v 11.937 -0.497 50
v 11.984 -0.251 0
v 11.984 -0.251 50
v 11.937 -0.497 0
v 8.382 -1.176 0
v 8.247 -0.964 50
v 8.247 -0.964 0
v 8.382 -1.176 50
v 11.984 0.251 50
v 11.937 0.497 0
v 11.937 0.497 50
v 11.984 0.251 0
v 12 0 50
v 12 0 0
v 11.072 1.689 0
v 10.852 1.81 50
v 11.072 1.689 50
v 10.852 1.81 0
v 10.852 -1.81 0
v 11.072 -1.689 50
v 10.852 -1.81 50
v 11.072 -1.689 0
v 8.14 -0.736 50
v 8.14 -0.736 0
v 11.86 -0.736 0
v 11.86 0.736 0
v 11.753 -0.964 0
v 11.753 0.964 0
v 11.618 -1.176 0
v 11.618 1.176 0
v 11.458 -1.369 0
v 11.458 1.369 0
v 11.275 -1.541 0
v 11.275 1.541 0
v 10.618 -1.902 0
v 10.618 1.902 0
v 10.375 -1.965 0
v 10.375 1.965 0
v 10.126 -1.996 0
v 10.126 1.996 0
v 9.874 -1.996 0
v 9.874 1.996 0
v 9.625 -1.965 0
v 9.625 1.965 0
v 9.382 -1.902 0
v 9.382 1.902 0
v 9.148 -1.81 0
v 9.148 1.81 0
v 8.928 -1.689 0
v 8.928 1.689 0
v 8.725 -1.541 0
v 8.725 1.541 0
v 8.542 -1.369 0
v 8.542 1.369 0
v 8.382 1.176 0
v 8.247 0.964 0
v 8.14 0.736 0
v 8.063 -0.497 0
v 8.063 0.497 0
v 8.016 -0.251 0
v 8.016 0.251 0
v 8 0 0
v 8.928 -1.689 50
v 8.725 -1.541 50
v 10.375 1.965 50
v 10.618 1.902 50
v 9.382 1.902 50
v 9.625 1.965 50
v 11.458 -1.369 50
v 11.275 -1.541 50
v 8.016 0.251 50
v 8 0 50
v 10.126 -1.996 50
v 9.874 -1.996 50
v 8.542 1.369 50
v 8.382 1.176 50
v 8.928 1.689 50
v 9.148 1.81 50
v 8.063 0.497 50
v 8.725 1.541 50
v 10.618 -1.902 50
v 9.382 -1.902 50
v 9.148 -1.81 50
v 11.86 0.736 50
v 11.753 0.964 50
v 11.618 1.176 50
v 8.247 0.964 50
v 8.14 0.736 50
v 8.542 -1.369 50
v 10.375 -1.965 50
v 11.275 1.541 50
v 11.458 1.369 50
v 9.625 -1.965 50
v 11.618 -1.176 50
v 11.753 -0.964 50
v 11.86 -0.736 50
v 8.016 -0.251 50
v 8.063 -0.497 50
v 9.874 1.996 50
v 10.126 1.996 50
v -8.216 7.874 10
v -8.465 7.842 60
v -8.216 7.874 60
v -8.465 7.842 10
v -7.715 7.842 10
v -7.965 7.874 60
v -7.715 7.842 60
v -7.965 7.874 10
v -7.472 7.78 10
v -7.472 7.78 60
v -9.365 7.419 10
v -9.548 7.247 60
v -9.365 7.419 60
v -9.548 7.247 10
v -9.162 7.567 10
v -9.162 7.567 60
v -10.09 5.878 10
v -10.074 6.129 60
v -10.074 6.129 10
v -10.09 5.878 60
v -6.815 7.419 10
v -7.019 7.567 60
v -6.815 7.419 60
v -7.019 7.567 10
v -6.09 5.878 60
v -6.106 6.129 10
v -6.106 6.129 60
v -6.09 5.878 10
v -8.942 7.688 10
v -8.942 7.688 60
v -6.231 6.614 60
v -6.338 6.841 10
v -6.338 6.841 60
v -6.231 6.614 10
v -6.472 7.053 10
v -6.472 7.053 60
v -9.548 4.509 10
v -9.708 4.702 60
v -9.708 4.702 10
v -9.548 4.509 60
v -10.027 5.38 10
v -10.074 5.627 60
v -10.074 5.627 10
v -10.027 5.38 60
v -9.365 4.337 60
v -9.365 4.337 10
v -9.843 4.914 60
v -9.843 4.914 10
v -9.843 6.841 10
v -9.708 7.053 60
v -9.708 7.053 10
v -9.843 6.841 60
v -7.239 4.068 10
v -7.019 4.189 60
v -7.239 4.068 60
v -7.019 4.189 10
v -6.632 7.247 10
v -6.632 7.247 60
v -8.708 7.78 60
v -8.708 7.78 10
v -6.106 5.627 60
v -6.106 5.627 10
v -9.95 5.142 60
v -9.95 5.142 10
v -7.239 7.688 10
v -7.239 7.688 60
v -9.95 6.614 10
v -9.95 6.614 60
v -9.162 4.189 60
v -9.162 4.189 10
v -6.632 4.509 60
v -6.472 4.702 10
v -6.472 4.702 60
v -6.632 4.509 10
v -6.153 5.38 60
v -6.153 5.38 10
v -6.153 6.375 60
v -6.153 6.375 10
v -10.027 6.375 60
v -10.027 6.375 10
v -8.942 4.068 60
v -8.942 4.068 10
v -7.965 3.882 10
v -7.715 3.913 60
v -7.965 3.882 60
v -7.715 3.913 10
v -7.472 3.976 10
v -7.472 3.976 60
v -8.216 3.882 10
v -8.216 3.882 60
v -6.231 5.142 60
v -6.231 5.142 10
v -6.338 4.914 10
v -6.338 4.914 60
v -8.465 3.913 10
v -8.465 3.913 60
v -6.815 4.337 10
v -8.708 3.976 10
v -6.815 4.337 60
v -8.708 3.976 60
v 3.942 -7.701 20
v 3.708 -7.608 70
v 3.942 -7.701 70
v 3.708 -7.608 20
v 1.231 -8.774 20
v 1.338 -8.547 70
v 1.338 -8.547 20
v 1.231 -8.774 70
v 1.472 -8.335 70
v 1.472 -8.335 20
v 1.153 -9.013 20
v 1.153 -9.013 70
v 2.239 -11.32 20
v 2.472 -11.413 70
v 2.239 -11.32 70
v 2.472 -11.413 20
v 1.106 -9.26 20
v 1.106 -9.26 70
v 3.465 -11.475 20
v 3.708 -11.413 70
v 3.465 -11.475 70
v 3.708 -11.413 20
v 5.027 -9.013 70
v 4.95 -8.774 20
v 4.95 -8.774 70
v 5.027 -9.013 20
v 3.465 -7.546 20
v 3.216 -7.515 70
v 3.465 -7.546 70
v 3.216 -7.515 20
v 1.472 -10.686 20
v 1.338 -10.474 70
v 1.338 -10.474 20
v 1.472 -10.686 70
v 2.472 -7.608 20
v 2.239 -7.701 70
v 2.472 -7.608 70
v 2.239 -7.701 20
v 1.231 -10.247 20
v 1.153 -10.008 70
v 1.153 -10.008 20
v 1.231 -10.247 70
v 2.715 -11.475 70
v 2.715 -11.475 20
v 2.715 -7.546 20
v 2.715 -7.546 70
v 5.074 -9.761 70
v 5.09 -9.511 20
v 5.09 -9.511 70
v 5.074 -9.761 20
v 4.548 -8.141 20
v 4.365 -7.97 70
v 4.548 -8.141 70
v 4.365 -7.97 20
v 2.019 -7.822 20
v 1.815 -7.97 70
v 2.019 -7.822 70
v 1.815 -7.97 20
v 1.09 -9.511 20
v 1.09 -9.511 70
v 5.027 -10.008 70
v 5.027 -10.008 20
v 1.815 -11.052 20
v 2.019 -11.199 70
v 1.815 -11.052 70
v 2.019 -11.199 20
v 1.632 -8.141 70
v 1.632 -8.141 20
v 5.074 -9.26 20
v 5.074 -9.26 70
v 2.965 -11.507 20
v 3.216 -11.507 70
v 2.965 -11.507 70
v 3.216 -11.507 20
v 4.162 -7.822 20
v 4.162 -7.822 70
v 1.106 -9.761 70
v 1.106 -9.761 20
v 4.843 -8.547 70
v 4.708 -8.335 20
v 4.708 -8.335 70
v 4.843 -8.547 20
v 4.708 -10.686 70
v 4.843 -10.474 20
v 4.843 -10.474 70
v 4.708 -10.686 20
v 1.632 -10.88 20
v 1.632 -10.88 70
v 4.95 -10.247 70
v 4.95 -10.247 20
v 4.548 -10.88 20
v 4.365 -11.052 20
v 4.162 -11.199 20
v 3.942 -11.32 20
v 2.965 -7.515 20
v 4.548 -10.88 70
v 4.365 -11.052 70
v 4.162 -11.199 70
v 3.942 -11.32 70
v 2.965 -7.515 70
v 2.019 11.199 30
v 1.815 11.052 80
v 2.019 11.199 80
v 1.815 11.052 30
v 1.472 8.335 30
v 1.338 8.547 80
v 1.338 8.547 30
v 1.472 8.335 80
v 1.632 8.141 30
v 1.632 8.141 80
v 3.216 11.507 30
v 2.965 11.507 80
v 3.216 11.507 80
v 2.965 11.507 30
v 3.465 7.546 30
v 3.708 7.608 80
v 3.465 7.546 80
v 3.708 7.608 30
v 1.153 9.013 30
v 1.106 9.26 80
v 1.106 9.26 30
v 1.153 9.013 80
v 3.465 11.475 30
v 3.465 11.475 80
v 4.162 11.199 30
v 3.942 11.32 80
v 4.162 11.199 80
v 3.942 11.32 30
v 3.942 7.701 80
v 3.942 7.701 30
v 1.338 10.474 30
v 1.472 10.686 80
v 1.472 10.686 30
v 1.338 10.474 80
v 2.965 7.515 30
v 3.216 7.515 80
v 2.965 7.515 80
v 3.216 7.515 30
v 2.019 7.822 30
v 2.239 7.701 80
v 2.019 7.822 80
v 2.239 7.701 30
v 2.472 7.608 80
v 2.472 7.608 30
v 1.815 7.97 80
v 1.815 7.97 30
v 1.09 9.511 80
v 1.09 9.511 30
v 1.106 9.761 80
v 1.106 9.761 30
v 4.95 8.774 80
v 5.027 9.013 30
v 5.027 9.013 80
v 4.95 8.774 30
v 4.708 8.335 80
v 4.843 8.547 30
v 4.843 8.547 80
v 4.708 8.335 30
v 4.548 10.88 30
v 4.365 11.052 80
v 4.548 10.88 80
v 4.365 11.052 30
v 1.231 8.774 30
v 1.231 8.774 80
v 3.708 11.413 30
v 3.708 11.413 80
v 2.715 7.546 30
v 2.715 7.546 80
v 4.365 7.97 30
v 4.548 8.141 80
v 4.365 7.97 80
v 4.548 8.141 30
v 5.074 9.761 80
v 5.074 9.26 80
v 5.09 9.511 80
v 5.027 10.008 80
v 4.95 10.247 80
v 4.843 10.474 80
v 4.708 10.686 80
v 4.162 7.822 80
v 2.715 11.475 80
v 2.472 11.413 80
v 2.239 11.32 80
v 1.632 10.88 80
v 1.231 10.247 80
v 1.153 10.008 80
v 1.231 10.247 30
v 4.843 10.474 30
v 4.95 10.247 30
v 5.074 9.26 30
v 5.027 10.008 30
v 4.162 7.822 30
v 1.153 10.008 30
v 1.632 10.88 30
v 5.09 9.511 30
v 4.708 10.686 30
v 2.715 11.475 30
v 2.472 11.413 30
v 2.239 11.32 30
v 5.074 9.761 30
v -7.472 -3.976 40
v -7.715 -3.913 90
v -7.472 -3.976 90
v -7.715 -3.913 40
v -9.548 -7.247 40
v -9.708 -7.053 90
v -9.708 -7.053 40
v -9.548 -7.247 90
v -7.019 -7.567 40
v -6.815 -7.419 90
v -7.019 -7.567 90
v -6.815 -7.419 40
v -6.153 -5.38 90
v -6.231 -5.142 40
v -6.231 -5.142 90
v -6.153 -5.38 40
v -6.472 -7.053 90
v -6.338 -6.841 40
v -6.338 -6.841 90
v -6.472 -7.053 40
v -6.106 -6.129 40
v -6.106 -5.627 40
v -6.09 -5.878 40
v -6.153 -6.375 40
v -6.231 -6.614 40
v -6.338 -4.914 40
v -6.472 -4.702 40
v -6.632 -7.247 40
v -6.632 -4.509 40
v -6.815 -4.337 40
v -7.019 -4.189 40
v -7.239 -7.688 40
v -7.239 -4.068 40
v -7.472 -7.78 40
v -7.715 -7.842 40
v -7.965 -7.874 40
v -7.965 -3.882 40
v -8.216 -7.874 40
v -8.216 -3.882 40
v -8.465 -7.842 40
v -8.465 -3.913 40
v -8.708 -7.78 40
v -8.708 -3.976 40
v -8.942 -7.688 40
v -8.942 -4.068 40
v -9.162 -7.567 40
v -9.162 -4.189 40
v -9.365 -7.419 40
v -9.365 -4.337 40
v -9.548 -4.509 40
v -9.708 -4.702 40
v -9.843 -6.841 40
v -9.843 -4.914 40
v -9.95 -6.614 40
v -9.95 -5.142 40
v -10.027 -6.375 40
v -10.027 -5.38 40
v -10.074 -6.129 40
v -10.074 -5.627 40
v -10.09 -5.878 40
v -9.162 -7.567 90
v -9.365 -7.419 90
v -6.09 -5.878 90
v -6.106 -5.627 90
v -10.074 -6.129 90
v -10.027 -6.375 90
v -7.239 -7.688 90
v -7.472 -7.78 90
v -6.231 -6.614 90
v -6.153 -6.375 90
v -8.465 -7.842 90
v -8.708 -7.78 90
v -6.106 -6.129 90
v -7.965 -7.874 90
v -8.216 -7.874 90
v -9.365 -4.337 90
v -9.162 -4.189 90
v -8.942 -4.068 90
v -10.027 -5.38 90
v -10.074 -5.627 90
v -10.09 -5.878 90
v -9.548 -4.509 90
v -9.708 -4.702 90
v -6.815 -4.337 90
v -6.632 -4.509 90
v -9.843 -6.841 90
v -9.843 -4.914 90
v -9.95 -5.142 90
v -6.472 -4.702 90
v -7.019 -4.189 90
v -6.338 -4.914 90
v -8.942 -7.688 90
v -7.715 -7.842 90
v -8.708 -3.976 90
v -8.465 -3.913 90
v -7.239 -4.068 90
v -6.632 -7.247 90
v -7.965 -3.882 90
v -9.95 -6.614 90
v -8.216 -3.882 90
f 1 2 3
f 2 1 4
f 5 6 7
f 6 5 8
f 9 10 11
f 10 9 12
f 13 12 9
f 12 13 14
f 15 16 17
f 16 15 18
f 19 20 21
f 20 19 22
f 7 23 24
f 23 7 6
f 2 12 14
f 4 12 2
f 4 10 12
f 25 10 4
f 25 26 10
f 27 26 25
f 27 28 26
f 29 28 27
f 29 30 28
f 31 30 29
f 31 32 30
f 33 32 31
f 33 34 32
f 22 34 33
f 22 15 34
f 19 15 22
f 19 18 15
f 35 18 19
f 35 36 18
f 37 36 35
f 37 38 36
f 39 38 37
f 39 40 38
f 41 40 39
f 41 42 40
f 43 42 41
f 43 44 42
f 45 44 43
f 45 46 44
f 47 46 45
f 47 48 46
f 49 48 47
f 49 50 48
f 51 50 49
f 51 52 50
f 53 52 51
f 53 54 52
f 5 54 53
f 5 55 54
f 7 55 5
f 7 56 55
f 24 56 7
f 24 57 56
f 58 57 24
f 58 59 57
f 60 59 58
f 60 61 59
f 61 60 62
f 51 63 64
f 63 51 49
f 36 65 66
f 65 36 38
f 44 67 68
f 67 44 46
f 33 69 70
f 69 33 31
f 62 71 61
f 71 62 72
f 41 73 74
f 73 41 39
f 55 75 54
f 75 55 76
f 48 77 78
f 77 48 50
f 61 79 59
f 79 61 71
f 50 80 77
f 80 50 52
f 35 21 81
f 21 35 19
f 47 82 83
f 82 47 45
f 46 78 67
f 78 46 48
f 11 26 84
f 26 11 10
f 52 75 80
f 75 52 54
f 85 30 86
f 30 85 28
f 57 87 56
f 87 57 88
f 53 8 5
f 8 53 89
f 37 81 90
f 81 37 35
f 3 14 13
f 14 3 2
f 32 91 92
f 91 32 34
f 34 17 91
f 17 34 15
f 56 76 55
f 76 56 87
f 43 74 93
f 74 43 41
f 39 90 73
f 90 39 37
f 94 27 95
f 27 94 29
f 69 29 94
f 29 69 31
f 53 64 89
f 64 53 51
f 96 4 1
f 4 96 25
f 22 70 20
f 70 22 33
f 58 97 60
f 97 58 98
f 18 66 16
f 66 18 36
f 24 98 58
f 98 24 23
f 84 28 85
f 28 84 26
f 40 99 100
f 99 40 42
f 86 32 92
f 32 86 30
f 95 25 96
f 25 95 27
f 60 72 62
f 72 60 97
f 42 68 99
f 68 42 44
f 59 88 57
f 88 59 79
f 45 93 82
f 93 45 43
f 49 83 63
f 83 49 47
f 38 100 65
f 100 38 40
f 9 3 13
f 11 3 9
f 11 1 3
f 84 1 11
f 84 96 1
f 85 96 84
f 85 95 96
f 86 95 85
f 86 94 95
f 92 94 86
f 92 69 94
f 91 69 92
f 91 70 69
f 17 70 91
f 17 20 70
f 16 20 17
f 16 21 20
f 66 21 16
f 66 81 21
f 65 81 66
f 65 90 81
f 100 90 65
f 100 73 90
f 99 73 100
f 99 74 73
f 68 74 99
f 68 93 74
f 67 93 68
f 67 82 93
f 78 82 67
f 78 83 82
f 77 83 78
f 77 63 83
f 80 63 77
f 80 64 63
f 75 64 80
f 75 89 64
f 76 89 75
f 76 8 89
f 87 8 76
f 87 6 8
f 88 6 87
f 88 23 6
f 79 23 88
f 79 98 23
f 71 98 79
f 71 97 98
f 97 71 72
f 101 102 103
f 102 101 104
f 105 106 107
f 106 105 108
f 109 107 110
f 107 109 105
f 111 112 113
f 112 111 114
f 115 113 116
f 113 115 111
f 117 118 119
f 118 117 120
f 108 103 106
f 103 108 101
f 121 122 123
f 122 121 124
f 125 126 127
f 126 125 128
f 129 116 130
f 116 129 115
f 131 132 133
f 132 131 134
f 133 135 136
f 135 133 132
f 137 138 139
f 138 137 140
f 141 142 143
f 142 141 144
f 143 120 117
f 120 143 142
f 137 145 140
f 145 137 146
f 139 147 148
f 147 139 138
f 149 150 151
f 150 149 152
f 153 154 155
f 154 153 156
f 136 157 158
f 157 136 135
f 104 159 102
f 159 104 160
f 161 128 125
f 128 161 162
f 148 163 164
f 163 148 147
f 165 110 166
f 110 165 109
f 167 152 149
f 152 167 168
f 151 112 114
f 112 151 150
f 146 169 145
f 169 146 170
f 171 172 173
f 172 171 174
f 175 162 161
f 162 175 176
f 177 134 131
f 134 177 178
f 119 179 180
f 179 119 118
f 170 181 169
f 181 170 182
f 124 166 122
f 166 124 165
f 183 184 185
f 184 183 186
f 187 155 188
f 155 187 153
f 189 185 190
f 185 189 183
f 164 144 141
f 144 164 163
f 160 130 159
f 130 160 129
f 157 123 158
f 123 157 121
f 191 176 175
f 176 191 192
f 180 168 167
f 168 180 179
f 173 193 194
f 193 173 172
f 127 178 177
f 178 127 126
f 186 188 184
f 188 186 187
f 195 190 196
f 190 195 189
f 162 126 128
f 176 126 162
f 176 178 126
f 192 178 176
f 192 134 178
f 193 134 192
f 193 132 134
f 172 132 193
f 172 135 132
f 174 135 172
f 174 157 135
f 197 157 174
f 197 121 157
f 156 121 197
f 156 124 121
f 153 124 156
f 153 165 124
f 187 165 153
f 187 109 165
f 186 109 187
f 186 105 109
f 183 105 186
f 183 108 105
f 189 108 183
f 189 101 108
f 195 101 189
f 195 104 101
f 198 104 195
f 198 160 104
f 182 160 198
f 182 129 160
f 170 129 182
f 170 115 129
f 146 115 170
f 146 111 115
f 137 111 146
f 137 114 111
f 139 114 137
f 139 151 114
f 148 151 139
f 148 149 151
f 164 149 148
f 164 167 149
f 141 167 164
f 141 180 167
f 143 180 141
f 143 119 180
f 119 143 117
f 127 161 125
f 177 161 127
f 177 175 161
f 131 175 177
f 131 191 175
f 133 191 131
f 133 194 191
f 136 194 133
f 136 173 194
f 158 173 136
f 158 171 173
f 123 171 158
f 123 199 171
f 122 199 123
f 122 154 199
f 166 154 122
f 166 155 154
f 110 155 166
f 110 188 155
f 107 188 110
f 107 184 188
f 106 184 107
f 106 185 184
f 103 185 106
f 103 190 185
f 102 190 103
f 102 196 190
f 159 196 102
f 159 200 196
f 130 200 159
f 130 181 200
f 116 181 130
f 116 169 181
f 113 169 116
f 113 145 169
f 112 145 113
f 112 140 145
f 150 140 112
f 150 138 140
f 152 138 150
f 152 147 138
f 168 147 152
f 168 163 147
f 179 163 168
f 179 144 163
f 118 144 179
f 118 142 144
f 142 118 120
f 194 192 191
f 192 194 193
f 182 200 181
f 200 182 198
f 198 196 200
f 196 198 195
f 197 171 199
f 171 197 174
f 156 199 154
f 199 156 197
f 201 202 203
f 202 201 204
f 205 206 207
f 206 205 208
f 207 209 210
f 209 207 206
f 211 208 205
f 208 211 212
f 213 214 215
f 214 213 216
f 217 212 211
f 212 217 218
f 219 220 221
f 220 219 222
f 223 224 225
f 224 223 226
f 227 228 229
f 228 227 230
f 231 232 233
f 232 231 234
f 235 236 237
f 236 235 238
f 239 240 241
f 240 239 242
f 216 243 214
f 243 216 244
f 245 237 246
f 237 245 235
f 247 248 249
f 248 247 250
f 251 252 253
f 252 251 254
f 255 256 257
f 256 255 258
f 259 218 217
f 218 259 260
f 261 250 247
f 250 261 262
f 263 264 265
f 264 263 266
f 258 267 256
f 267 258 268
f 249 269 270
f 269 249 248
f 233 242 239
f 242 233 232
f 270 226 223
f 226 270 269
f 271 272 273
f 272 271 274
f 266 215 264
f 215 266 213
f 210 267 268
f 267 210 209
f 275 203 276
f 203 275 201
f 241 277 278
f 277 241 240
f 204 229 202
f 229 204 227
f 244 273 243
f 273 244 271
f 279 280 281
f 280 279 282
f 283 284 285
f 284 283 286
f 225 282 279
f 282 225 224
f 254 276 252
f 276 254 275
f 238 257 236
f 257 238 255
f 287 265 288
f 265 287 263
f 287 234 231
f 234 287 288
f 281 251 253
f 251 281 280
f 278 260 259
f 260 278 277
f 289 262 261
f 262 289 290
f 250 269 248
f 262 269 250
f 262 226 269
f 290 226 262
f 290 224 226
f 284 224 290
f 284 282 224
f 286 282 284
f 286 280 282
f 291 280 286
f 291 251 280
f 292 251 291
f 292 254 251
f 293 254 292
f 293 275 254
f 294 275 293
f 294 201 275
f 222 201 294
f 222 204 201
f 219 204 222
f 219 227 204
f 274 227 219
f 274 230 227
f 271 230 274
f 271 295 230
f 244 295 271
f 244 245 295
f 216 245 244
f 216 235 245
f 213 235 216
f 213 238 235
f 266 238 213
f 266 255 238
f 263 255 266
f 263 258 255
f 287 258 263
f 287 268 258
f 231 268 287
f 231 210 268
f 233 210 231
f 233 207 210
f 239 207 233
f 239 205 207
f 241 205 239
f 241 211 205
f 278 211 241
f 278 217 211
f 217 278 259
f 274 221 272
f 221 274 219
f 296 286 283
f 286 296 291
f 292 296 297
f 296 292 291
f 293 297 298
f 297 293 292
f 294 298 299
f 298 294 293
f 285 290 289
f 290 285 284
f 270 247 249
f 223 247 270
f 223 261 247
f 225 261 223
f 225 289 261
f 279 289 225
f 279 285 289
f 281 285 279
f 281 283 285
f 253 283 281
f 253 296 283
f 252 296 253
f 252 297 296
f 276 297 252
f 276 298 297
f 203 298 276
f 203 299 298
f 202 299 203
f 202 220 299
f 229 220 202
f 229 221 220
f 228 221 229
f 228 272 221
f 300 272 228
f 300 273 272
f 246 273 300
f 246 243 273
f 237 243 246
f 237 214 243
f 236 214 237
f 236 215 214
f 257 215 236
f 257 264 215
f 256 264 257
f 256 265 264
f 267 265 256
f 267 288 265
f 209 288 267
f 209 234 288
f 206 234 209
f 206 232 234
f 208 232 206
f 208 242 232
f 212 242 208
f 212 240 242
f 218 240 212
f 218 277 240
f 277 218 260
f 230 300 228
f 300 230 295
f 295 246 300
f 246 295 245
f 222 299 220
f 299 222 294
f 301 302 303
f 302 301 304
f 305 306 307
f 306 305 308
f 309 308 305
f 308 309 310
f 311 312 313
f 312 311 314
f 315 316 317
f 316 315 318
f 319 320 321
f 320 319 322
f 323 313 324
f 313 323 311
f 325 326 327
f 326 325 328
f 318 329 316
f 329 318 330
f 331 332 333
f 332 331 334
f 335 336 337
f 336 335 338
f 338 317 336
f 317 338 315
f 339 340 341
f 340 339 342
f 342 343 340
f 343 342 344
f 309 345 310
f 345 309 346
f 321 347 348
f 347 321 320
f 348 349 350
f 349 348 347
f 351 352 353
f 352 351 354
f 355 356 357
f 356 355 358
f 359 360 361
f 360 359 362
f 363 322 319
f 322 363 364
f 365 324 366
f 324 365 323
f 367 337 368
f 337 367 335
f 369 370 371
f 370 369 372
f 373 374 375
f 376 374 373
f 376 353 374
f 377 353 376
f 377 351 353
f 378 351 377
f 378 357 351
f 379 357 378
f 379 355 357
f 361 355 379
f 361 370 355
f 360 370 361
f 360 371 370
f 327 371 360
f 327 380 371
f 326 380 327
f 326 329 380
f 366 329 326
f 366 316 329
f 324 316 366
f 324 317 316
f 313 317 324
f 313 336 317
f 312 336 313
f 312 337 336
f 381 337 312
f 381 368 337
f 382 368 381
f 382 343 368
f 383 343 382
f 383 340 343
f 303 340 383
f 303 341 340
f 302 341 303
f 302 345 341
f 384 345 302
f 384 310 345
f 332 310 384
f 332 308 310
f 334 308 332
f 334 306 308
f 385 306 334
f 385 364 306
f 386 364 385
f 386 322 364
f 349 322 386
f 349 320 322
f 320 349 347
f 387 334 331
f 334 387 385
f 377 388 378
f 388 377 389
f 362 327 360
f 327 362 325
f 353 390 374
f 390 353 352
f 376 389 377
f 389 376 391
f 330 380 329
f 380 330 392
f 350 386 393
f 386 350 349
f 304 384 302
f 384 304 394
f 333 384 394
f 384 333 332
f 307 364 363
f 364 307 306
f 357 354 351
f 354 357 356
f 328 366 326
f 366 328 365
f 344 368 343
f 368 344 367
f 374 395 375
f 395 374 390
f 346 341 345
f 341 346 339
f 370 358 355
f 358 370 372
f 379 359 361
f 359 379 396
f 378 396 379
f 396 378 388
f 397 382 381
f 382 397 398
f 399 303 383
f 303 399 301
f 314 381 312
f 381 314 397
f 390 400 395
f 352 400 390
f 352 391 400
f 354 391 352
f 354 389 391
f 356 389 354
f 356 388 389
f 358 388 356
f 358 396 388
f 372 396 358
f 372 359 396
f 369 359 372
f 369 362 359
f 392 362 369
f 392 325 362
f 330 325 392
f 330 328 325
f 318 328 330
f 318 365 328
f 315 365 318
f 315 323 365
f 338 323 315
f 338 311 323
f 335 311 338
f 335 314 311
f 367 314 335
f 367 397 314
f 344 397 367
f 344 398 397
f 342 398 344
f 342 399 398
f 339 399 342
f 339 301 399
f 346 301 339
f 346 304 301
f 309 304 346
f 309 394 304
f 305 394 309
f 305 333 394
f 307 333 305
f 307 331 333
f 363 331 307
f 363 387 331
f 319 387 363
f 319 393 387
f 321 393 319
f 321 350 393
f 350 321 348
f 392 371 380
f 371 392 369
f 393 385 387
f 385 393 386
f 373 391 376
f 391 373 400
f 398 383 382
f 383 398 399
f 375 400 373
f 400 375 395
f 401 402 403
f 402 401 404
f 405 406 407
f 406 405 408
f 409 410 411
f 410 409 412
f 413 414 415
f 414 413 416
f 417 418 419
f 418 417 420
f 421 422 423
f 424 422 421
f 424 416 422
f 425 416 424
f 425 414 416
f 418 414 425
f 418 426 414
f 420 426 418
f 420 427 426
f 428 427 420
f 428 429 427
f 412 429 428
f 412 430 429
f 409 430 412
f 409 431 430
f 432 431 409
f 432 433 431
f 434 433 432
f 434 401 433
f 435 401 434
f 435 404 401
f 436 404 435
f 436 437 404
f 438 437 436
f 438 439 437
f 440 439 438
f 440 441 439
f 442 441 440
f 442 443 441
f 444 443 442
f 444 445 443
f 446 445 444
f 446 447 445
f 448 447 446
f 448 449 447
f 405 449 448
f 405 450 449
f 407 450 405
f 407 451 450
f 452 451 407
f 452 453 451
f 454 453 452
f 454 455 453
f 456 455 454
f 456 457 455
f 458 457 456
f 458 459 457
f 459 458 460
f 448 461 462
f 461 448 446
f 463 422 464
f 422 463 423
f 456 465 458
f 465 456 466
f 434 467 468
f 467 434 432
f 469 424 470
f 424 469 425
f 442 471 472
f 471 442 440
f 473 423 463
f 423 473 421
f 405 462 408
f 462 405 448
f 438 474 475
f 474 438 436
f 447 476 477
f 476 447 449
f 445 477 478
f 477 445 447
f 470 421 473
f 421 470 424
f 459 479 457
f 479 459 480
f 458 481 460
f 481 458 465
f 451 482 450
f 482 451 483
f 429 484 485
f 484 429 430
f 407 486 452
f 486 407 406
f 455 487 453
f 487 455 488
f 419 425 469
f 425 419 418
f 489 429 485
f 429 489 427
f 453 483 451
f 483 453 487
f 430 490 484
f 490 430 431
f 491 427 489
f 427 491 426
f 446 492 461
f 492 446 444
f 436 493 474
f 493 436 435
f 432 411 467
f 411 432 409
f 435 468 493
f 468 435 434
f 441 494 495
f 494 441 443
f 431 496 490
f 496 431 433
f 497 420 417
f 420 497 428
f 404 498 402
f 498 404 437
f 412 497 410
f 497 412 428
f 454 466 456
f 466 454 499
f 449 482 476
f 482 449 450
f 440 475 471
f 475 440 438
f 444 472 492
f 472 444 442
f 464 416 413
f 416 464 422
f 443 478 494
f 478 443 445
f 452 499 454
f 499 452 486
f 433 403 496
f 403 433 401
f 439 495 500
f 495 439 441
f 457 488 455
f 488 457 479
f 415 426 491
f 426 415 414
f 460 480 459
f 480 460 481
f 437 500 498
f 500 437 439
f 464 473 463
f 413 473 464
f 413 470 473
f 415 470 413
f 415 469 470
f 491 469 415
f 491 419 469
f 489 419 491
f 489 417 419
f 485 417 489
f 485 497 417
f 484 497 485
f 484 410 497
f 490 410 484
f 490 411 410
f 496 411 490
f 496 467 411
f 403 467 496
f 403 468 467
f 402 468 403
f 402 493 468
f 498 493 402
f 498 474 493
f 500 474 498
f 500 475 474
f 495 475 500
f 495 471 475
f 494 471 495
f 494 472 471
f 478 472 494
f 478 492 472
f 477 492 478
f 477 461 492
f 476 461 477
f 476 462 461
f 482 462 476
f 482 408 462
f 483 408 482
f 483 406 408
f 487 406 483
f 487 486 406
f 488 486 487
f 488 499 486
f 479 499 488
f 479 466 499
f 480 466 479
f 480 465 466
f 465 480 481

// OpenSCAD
// Spring parameters
radius = 10;
wire_radius = 2;
height = 50;
turns = 5;
angle_increment = 360 / turns;

module spring(radius, wire_radius, height, turns, angle_increment) {
  for (i = [0:turns-1]) {
    angle = i * angle_increment;
    rotate([0,0,angle])
    translate([radius * cos(angle), radius * sin(angle), height * i/turns])
    cylinder(h = height, r = wire_radius, $fn = 50);
  }
}

spring(radius, wire_radius, height, turns, angle_increment);
